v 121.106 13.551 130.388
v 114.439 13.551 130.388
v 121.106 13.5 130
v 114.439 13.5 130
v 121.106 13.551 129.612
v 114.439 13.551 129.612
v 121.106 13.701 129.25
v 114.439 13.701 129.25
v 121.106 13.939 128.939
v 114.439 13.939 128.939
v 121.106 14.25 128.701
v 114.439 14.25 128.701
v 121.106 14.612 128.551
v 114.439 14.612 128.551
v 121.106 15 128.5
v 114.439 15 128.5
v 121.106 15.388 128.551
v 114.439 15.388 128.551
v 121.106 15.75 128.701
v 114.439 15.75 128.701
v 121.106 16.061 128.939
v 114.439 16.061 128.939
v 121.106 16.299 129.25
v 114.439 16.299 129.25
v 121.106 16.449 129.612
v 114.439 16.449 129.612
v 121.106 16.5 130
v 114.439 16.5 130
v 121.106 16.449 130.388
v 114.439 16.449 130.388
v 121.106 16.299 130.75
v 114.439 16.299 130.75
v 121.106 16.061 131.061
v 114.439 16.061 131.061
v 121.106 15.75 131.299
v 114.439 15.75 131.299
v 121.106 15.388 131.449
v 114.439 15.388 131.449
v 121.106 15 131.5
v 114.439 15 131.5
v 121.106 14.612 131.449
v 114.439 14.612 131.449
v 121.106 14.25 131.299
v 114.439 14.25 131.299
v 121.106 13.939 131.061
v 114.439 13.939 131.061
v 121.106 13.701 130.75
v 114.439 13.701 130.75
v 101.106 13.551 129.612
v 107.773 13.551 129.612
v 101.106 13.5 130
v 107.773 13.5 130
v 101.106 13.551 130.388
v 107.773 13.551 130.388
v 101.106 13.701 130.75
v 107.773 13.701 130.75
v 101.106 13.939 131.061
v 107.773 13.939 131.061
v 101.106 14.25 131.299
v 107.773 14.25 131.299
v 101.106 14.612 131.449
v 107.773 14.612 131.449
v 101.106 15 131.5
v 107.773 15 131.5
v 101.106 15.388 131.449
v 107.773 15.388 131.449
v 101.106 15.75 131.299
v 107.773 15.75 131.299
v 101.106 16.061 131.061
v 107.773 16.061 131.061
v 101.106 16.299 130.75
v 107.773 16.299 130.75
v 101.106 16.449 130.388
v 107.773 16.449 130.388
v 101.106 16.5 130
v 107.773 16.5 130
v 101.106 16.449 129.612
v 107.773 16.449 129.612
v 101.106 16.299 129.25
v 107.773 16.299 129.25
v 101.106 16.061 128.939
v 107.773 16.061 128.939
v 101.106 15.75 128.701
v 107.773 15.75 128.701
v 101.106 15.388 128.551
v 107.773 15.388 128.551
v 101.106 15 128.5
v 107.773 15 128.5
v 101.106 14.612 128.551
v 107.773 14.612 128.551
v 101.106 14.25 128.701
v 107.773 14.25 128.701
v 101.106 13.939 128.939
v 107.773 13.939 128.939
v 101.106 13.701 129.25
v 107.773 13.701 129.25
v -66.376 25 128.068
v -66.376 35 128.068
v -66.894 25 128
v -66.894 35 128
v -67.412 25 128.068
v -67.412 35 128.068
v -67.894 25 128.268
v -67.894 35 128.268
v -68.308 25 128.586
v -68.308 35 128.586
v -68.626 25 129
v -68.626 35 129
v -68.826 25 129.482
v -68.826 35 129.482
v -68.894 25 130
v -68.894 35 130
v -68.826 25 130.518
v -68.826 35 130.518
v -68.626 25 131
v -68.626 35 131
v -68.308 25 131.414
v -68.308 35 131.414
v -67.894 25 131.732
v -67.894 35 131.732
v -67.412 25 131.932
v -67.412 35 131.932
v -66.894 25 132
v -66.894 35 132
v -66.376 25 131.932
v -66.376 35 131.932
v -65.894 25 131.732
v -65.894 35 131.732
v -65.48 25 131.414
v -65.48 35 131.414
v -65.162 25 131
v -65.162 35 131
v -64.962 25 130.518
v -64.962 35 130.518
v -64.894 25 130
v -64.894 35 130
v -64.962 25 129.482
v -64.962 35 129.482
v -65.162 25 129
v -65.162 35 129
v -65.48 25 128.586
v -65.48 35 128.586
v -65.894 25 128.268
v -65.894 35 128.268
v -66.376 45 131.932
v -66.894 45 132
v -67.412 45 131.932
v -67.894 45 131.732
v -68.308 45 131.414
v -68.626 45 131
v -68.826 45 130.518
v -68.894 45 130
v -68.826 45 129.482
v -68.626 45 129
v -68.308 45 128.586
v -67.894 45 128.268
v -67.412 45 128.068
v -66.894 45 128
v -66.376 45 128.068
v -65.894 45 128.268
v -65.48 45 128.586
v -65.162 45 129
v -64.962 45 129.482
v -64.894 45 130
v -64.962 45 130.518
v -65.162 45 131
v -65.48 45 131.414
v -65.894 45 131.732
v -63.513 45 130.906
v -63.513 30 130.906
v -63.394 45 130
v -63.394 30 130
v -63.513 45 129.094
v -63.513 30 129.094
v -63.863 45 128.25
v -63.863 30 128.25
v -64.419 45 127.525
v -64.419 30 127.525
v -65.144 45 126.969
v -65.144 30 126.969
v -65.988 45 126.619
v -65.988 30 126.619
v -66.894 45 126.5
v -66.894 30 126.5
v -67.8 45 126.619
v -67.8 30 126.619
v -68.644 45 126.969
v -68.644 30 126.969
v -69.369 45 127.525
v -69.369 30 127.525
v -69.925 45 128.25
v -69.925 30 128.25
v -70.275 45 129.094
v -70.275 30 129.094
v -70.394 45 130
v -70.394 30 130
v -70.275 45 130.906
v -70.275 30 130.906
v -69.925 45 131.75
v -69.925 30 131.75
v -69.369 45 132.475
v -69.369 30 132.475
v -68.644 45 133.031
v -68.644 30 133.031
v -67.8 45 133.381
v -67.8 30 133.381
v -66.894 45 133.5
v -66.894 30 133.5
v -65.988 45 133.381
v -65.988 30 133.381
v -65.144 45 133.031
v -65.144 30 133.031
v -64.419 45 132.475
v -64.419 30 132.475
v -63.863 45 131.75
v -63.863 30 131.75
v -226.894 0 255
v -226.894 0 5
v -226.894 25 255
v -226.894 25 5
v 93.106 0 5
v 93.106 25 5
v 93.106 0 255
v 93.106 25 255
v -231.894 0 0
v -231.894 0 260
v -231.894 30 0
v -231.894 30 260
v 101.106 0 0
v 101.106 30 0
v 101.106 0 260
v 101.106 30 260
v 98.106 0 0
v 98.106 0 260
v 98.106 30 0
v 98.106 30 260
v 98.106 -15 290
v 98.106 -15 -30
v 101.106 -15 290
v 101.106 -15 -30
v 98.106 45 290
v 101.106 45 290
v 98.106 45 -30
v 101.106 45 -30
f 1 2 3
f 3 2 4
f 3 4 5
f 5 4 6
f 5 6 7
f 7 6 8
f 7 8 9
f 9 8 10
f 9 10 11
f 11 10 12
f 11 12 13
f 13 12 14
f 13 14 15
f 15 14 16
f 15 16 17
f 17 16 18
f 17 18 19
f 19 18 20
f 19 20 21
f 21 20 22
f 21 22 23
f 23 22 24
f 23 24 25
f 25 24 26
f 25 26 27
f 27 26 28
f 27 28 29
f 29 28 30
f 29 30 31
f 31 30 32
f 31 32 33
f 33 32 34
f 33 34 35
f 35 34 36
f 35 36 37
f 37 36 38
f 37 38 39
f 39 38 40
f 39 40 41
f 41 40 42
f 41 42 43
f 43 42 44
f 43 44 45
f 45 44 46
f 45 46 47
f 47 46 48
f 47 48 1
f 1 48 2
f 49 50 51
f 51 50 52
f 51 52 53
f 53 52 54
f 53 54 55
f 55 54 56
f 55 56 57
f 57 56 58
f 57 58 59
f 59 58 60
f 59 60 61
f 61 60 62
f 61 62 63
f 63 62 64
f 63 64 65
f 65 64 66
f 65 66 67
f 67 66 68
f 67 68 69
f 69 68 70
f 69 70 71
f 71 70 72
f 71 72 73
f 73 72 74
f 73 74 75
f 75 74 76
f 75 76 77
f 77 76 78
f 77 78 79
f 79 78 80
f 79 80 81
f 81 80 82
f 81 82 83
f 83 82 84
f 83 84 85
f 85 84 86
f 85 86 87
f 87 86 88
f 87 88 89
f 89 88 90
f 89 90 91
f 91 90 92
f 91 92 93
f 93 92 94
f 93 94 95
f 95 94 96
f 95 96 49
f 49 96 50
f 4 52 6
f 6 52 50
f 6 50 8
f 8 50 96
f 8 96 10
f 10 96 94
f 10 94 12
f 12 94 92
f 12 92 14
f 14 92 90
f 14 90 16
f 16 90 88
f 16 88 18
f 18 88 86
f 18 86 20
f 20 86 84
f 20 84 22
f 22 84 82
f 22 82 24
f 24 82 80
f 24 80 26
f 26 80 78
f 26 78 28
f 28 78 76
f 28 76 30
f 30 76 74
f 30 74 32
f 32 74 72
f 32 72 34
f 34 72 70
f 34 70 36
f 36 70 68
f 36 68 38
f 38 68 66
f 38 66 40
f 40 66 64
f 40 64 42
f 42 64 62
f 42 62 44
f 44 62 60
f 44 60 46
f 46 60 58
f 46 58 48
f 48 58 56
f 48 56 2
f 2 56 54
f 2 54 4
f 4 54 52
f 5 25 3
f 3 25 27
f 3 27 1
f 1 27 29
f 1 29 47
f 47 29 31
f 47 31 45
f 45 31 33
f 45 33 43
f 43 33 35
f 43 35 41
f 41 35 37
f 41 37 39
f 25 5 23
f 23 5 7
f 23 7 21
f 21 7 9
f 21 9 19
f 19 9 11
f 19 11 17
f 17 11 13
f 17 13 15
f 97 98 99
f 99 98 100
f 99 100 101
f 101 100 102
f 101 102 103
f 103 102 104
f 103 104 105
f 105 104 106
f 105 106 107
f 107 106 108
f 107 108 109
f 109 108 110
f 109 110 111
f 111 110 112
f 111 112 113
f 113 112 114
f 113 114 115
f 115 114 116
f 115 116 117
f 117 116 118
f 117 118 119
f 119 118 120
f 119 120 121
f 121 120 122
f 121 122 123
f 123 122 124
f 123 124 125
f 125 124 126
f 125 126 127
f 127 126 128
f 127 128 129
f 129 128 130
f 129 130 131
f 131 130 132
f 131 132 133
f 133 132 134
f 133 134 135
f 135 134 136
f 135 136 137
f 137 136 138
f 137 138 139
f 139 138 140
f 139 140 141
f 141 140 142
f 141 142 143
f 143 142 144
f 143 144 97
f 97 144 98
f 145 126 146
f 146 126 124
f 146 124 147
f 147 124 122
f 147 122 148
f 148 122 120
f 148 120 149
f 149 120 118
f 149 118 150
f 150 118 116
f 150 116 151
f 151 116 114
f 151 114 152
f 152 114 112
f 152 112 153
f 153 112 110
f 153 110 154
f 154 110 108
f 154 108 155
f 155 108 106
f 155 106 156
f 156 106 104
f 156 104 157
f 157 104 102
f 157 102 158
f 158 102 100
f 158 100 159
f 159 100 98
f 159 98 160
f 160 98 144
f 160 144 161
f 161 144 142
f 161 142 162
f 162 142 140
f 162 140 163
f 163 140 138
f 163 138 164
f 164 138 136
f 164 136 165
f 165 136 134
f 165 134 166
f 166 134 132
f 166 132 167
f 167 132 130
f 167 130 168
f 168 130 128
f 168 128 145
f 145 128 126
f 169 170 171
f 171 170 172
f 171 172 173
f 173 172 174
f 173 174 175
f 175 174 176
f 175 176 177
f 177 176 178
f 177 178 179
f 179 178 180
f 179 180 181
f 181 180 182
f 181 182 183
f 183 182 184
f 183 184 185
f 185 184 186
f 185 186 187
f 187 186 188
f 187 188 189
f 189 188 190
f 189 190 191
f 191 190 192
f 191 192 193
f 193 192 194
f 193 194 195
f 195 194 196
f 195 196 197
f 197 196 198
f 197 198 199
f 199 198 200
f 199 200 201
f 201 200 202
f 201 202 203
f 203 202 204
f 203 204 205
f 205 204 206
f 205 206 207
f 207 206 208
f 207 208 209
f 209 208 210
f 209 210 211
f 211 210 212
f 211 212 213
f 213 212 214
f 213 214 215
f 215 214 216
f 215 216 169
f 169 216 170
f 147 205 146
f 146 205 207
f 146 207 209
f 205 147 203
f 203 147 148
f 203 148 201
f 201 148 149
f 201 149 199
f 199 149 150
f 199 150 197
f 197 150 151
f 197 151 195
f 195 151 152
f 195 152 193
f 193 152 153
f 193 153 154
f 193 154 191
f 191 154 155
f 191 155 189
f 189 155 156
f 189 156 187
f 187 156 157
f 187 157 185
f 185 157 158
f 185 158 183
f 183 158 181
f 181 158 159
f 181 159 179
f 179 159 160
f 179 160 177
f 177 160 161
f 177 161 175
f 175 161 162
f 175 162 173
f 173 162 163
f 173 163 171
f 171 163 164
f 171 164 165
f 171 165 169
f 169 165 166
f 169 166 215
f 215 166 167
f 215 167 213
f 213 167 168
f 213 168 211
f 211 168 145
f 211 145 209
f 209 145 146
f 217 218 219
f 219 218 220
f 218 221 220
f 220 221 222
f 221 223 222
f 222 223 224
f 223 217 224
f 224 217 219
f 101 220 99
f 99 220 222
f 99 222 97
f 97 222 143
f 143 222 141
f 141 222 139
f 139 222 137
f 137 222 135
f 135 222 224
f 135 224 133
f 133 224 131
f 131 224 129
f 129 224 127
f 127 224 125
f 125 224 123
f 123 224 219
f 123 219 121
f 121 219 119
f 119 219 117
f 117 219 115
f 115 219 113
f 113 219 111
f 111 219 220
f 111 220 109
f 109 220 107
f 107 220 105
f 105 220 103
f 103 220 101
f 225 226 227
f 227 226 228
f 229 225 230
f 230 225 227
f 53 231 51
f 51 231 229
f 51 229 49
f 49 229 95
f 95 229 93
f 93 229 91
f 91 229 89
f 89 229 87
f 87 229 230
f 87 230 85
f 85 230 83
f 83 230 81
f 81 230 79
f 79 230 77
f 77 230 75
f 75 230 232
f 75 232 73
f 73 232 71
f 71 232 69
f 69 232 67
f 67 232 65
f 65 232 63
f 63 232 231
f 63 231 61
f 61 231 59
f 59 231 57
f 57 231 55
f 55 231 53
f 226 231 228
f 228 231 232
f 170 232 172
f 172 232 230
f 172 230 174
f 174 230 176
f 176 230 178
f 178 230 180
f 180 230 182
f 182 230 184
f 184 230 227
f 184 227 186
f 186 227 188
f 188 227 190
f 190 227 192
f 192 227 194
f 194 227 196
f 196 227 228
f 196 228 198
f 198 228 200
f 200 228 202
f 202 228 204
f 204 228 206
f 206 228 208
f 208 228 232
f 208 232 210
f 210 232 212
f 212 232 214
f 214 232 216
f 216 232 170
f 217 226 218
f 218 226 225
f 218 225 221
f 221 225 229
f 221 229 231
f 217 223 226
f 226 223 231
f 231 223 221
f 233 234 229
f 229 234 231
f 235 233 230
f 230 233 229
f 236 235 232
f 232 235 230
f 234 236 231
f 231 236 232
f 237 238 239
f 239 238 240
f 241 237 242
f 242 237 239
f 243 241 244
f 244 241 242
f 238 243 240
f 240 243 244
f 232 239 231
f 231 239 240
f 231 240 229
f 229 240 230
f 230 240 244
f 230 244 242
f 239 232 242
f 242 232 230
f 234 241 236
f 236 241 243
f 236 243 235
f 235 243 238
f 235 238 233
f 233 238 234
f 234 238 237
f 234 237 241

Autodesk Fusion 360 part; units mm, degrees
sketch "Skizze1" plane through (0, 0, 0) normal (0, 1, 0) x (1, 0, 0)
  line L0 (-231.8939, 0) -> (98.1061, 0)
  line L1 (98.1061, 0) -> (98.1061, -260)
  line L2 (98.1061, -260) -> (-231.8939, -260)
  line L3 (-231.8939, -260) -> (-231.8939, 0)
  dimension "d1" = 260
  dimension "d2" = 330
extrude "Extrusion1" add sketch "Skizze1" along normal blind 30 makes body 1
shell "Schale1" thickness 5 removed faces 1 at (-121.8939, 0, 173.3333) on bodies 1
sketch "Skizze2" plane through (0, 30, 0) normal (0, 1, 0) x (-1, 0, 0)
  line L0 (231.8939, 260) -> (-98.1061, 260)
  line L1 (-98.1061, 260) -> (-98.1061, 0)
  line L2 (-98.1061, 0) -> (231.8939, 0)
  line L3 (231.8939, 0) -> (231.8939, 260)
  circle A0 centre (66.8939, 130) radius 3.5
  dimension "d6" = 7
  dimension "d7" = 130
  dimension "d8" = 130
  dimension "d9" = 165
  dimension "d10" = 165
extrude "Extrusion2" add sketch "Skizze2" along normal blind 15 contours A0 bodies 1
hole "Bohrung1" at (-66.8939, 45, 130) direction (0, -1, 0) diameter 4 depth 100 tip angle 180 bodies 1
sketch "Skizze3" plane through (98.1061, 0, 0) normal (1, 0, 0) x (0, 1, 0)
  line L0 (0, 260) -> (0, 0)
  line L1 (0, 0) -> (30, 0)
  line L2 (30, 0) -> (30, 260)
  line L3 (30, 260) -> (0, 260)
  line L4 (-15, 290) -> (45, 290)
  line L5 (45, 290) -> (45, -30)
  line L6 (45, -30) -> (-15, -30)
  line L7 (-15, -30) -> (-15, 290)
  dimension "d16" = 30
  dimension "d17" = 30
  dimension "d18" = 15
  dimension "d19" = 15
extrude "Extrusion3" add sketch "Skizze3" along normal blind 3 separate body makes body 2
move_face "Flächen versetzen1" offset 3 1 faces at (98.1061, 10, 86.6667) on bodies 1
sketch "Skizze4" plane through (101.1061, 0, 0) normal (1, 0, 0) x (0, 1, 0)
  line L0 (0, 260) -> (0, 0)
  line L1 (0, 0) -> (30, 0)
  line L2 (30, 0) -> (30, 260)
  line L3 (30, 260) -> (0, 260)
  circle A0 centre (15, 130) radius 1.5
  dimension "d23" = 3
  dimension "d24" = 130
  dimension "d25" = 130
  dimension "d26" = 15
  dimension "d27" = 15
extrude "Extrusion4" add sketch "Skizze4" along normal blind 20 contours A0 bodies 1
